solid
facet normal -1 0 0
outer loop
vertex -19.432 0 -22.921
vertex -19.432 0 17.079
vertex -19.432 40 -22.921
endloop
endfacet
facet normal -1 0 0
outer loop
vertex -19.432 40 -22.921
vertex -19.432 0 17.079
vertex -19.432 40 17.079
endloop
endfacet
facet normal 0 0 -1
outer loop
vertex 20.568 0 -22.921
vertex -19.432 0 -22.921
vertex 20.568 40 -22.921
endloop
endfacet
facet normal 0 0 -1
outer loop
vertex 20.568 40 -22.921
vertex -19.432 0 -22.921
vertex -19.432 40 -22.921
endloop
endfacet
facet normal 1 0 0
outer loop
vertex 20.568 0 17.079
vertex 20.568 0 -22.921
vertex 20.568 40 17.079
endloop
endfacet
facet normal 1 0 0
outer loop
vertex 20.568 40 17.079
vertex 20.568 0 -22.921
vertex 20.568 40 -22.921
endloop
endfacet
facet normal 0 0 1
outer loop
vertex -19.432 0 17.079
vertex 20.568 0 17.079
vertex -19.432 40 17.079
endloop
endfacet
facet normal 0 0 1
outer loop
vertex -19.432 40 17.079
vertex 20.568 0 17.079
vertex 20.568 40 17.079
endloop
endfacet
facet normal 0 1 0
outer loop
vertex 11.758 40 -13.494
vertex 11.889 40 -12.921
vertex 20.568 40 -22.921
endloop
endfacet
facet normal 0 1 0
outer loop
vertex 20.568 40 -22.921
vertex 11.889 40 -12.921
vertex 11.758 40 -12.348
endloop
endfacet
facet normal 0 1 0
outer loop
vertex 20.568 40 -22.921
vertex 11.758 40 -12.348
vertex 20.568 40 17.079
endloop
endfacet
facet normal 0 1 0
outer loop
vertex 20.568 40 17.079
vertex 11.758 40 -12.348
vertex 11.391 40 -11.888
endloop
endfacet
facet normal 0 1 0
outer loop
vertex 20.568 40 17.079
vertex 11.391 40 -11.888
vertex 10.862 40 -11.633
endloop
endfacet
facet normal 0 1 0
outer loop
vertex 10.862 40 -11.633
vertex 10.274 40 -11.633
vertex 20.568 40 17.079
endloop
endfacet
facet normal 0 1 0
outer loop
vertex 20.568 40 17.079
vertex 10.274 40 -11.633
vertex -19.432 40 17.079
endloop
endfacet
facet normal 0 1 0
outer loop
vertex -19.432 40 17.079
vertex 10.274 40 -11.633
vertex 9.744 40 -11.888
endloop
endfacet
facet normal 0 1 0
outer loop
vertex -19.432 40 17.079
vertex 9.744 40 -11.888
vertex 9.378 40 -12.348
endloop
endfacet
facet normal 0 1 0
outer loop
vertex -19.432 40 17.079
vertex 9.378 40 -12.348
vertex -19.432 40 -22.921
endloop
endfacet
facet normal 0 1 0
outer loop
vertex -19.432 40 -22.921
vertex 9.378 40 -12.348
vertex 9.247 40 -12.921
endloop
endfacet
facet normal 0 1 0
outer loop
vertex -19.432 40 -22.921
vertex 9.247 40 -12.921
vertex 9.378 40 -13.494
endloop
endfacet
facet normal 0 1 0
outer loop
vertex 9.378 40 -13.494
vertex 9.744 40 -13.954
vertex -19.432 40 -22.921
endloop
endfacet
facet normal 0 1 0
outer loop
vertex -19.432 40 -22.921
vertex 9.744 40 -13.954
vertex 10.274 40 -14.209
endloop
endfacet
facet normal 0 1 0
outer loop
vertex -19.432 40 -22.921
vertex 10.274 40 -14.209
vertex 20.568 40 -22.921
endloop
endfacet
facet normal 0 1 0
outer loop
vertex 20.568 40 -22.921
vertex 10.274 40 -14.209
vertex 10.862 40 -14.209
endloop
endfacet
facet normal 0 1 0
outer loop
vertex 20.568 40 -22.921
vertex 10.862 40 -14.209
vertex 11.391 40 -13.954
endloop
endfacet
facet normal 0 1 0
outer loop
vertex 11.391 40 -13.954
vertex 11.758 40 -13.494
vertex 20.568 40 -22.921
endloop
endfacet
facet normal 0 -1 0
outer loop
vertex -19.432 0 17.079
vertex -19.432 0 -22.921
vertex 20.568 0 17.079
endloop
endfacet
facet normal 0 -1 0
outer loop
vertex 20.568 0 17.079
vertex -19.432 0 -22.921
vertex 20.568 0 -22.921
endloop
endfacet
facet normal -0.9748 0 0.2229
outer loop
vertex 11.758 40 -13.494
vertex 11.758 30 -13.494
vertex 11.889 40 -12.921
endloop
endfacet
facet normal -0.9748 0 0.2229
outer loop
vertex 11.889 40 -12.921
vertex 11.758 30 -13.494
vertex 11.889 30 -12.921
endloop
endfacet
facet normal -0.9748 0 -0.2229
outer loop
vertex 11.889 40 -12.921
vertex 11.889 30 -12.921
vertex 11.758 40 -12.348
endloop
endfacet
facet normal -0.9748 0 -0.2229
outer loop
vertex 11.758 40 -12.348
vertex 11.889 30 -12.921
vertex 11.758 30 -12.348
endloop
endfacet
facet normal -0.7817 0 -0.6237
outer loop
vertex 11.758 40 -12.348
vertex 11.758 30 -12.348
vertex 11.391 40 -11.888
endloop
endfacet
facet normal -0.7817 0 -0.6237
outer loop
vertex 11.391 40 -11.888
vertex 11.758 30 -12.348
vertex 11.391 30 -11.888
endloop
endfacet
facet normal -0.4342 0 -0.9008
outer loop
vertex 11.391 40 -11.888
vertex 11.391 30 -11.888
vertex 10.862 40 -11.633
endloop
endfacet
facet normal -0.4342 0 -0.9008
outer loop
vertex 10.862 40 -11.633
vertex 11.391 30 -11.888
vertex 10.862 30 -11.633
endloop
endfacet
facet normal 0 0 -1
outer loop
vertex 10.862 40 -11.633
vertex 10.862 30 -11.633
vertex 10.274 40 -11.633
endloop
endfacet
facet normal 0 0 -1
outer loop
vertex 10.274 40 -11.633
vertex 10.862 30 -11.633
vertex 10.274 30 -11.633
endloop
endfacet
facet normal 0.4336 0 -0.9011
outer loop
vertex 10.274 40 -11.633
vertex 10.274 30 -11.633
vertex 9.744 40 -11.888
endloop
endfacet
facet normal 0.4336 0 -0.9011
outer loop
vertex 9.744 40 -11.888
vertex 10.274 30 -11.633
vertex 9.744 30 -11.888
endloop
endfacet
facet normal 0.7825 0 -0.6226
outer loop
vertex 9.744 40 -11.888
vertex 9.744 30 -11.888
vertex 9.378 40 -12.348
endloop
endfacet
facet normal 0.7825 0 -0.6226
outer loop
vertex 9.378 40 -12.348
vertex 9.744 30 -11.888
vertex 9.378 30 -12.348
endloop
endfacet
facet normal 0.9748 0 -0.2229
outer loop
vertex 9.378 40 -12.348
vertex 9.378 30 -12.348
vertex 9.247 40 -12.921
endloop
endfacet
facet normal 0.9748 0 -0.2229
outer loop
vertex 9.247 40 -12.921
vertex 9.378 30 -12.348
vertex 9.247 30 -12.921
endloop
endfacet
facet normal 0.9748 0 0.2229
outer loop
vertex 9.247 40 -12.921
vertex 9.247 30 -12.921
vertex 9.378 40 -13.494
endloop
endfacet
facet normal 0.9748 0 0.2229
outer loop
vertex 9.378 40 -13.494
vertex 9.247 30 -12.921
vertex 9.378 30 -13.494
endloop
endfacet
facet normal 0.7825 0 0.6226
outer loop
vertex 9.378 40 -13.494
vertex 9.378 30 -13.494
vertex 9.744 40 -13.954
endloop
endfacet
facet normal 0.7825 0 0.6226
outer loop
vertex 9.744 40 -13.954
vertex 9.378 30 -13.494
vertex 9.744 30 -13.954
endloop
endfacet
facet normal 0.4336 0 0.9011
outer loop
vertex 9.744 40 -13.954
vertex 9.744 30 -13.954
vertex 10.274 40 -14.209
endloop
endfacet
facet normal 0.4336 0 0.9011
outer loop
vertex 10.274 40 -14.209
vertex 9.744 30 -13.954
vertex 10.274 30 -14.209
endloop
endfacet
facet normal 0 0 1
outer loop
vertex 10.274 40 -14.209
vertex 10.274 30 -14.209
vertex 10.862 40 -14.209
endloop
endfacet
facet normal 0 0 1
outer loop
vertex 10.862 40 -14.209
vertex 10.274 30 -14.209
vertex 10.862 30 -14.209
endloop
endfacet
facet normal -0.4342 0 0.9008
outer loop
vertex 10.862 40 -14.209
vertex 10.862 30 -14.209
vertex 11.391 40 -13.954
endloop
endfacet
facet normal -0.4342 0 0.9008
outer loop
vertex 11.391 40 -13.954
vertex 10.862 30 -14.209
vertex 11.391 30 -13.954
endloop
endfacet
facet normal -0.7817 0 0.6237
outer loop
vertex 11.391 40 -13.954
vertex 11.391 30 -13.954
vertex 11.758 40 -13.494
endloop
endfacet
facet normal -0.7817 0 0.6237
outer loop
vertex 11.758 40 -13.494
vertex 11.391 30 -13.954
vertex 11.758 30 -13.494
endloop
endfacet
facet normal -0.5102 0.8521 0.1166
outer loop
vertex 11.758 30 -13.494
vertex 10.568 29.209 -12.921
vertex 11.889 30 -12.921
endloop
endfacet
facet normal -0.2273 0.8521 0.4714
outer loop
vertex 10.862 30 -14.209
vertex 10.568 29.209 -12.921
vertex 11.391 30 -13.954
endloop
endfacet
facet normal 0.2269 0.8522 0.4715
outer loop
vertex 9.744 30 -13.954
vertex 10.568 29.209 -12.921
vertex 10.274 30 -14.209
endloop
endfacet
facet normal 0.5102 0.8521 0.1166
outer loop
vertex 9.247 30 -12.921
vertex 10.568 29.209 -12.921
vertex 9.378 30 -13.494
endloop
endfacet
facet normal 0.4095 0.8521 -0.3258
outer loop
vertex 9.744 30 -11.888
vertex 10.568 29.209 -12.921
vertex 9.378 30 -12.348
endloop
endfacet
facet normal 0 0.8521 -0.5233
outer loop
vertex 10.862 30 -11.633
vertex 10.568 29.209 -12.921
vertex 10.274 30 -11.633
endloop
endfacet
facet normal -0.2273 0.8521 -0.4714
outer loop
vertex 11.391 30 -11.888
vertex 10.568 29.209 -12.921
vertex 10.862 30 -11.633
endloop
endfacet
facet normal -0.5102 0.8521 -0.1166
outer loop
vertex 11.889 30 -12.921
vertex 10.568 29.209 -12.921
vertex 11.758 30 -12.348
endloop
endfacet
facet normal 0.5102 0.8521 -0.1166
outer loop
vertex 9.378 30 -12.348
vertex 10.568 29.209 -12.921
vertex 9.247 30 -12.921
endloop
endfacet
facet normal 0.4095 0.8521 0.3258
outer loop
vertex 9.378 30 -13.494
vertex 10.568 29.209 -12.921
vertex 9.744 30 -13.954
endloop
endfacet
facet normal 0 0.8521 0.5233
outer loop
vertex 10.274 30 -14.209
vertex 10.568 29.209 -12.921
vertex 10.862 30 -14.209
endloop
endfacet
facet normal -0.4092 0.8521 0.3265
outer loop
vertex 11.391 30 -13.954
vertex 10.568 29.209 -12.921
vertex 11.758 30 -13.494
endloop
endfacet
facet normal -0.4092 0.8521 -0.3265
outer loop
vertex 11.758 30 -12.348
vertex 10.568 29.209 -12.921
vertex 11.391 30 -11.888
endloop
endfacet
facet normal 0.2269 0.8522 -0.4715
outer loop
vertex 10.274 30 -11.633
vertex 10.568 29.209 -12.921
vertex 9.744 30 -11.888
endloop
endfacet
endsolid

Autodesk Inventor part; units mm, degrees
ref_plane "YZ Plane" through (0, 0, 0) normal (1, 0, 0) x (0, 1, 0)
ref_plane "XZ Plane" through (0, 0, 0) normal (0, 1, 0) x (-1, 0, 0)
ref_plane "XY Plane" through (0, 0, 0) normal (0, 0, 1) x (1, 0, 0)
sketch "Sketch1" plane through (0, 0, 0) normal (0, 1, 0) x (-1, 0, 0)
  line L0 (19.432, 17.0791) -> (-20.568, 17.0791)
  line L1 (-20.568, 17.0791) -> (-20.568, -22.9209)
  line L2 (-20.568, -22.9209) -> (19.432, -22.9209)
  line L3 (19.432, -22.9209) -> (19.432, 17.0791)
  point P0 (0, 0)
  dimension "d0" = 40
  dimension "d1" = 40
extrude "Extrusion1" add sketch "Sketch1" along normal blind 40
sketch "Sketch2" plane through (0, 40, 0) normal (0, 1, 0) x (1, 0, 0)
  line L0 (20.568, 22.9209) -> (-19.432, 22.9209) projected
  line L1 (20.568, -17.0791) -> (20.568, 22.9209) projected
  point P0 (0, 0)
  point P1 (10.568, 12.9209)
  dimension "d4" = 10
  dimension "d5" = 10
hole "Hole1" at (10.568, 40, -12.9209) direction (0, -1, 0) diameter 2.6416 depth 10 tip angle 118.188 thread size "6-32 UNC" class "2B" standard "ANSI Unified Screw Threads"
properties part number "CalibCube"
